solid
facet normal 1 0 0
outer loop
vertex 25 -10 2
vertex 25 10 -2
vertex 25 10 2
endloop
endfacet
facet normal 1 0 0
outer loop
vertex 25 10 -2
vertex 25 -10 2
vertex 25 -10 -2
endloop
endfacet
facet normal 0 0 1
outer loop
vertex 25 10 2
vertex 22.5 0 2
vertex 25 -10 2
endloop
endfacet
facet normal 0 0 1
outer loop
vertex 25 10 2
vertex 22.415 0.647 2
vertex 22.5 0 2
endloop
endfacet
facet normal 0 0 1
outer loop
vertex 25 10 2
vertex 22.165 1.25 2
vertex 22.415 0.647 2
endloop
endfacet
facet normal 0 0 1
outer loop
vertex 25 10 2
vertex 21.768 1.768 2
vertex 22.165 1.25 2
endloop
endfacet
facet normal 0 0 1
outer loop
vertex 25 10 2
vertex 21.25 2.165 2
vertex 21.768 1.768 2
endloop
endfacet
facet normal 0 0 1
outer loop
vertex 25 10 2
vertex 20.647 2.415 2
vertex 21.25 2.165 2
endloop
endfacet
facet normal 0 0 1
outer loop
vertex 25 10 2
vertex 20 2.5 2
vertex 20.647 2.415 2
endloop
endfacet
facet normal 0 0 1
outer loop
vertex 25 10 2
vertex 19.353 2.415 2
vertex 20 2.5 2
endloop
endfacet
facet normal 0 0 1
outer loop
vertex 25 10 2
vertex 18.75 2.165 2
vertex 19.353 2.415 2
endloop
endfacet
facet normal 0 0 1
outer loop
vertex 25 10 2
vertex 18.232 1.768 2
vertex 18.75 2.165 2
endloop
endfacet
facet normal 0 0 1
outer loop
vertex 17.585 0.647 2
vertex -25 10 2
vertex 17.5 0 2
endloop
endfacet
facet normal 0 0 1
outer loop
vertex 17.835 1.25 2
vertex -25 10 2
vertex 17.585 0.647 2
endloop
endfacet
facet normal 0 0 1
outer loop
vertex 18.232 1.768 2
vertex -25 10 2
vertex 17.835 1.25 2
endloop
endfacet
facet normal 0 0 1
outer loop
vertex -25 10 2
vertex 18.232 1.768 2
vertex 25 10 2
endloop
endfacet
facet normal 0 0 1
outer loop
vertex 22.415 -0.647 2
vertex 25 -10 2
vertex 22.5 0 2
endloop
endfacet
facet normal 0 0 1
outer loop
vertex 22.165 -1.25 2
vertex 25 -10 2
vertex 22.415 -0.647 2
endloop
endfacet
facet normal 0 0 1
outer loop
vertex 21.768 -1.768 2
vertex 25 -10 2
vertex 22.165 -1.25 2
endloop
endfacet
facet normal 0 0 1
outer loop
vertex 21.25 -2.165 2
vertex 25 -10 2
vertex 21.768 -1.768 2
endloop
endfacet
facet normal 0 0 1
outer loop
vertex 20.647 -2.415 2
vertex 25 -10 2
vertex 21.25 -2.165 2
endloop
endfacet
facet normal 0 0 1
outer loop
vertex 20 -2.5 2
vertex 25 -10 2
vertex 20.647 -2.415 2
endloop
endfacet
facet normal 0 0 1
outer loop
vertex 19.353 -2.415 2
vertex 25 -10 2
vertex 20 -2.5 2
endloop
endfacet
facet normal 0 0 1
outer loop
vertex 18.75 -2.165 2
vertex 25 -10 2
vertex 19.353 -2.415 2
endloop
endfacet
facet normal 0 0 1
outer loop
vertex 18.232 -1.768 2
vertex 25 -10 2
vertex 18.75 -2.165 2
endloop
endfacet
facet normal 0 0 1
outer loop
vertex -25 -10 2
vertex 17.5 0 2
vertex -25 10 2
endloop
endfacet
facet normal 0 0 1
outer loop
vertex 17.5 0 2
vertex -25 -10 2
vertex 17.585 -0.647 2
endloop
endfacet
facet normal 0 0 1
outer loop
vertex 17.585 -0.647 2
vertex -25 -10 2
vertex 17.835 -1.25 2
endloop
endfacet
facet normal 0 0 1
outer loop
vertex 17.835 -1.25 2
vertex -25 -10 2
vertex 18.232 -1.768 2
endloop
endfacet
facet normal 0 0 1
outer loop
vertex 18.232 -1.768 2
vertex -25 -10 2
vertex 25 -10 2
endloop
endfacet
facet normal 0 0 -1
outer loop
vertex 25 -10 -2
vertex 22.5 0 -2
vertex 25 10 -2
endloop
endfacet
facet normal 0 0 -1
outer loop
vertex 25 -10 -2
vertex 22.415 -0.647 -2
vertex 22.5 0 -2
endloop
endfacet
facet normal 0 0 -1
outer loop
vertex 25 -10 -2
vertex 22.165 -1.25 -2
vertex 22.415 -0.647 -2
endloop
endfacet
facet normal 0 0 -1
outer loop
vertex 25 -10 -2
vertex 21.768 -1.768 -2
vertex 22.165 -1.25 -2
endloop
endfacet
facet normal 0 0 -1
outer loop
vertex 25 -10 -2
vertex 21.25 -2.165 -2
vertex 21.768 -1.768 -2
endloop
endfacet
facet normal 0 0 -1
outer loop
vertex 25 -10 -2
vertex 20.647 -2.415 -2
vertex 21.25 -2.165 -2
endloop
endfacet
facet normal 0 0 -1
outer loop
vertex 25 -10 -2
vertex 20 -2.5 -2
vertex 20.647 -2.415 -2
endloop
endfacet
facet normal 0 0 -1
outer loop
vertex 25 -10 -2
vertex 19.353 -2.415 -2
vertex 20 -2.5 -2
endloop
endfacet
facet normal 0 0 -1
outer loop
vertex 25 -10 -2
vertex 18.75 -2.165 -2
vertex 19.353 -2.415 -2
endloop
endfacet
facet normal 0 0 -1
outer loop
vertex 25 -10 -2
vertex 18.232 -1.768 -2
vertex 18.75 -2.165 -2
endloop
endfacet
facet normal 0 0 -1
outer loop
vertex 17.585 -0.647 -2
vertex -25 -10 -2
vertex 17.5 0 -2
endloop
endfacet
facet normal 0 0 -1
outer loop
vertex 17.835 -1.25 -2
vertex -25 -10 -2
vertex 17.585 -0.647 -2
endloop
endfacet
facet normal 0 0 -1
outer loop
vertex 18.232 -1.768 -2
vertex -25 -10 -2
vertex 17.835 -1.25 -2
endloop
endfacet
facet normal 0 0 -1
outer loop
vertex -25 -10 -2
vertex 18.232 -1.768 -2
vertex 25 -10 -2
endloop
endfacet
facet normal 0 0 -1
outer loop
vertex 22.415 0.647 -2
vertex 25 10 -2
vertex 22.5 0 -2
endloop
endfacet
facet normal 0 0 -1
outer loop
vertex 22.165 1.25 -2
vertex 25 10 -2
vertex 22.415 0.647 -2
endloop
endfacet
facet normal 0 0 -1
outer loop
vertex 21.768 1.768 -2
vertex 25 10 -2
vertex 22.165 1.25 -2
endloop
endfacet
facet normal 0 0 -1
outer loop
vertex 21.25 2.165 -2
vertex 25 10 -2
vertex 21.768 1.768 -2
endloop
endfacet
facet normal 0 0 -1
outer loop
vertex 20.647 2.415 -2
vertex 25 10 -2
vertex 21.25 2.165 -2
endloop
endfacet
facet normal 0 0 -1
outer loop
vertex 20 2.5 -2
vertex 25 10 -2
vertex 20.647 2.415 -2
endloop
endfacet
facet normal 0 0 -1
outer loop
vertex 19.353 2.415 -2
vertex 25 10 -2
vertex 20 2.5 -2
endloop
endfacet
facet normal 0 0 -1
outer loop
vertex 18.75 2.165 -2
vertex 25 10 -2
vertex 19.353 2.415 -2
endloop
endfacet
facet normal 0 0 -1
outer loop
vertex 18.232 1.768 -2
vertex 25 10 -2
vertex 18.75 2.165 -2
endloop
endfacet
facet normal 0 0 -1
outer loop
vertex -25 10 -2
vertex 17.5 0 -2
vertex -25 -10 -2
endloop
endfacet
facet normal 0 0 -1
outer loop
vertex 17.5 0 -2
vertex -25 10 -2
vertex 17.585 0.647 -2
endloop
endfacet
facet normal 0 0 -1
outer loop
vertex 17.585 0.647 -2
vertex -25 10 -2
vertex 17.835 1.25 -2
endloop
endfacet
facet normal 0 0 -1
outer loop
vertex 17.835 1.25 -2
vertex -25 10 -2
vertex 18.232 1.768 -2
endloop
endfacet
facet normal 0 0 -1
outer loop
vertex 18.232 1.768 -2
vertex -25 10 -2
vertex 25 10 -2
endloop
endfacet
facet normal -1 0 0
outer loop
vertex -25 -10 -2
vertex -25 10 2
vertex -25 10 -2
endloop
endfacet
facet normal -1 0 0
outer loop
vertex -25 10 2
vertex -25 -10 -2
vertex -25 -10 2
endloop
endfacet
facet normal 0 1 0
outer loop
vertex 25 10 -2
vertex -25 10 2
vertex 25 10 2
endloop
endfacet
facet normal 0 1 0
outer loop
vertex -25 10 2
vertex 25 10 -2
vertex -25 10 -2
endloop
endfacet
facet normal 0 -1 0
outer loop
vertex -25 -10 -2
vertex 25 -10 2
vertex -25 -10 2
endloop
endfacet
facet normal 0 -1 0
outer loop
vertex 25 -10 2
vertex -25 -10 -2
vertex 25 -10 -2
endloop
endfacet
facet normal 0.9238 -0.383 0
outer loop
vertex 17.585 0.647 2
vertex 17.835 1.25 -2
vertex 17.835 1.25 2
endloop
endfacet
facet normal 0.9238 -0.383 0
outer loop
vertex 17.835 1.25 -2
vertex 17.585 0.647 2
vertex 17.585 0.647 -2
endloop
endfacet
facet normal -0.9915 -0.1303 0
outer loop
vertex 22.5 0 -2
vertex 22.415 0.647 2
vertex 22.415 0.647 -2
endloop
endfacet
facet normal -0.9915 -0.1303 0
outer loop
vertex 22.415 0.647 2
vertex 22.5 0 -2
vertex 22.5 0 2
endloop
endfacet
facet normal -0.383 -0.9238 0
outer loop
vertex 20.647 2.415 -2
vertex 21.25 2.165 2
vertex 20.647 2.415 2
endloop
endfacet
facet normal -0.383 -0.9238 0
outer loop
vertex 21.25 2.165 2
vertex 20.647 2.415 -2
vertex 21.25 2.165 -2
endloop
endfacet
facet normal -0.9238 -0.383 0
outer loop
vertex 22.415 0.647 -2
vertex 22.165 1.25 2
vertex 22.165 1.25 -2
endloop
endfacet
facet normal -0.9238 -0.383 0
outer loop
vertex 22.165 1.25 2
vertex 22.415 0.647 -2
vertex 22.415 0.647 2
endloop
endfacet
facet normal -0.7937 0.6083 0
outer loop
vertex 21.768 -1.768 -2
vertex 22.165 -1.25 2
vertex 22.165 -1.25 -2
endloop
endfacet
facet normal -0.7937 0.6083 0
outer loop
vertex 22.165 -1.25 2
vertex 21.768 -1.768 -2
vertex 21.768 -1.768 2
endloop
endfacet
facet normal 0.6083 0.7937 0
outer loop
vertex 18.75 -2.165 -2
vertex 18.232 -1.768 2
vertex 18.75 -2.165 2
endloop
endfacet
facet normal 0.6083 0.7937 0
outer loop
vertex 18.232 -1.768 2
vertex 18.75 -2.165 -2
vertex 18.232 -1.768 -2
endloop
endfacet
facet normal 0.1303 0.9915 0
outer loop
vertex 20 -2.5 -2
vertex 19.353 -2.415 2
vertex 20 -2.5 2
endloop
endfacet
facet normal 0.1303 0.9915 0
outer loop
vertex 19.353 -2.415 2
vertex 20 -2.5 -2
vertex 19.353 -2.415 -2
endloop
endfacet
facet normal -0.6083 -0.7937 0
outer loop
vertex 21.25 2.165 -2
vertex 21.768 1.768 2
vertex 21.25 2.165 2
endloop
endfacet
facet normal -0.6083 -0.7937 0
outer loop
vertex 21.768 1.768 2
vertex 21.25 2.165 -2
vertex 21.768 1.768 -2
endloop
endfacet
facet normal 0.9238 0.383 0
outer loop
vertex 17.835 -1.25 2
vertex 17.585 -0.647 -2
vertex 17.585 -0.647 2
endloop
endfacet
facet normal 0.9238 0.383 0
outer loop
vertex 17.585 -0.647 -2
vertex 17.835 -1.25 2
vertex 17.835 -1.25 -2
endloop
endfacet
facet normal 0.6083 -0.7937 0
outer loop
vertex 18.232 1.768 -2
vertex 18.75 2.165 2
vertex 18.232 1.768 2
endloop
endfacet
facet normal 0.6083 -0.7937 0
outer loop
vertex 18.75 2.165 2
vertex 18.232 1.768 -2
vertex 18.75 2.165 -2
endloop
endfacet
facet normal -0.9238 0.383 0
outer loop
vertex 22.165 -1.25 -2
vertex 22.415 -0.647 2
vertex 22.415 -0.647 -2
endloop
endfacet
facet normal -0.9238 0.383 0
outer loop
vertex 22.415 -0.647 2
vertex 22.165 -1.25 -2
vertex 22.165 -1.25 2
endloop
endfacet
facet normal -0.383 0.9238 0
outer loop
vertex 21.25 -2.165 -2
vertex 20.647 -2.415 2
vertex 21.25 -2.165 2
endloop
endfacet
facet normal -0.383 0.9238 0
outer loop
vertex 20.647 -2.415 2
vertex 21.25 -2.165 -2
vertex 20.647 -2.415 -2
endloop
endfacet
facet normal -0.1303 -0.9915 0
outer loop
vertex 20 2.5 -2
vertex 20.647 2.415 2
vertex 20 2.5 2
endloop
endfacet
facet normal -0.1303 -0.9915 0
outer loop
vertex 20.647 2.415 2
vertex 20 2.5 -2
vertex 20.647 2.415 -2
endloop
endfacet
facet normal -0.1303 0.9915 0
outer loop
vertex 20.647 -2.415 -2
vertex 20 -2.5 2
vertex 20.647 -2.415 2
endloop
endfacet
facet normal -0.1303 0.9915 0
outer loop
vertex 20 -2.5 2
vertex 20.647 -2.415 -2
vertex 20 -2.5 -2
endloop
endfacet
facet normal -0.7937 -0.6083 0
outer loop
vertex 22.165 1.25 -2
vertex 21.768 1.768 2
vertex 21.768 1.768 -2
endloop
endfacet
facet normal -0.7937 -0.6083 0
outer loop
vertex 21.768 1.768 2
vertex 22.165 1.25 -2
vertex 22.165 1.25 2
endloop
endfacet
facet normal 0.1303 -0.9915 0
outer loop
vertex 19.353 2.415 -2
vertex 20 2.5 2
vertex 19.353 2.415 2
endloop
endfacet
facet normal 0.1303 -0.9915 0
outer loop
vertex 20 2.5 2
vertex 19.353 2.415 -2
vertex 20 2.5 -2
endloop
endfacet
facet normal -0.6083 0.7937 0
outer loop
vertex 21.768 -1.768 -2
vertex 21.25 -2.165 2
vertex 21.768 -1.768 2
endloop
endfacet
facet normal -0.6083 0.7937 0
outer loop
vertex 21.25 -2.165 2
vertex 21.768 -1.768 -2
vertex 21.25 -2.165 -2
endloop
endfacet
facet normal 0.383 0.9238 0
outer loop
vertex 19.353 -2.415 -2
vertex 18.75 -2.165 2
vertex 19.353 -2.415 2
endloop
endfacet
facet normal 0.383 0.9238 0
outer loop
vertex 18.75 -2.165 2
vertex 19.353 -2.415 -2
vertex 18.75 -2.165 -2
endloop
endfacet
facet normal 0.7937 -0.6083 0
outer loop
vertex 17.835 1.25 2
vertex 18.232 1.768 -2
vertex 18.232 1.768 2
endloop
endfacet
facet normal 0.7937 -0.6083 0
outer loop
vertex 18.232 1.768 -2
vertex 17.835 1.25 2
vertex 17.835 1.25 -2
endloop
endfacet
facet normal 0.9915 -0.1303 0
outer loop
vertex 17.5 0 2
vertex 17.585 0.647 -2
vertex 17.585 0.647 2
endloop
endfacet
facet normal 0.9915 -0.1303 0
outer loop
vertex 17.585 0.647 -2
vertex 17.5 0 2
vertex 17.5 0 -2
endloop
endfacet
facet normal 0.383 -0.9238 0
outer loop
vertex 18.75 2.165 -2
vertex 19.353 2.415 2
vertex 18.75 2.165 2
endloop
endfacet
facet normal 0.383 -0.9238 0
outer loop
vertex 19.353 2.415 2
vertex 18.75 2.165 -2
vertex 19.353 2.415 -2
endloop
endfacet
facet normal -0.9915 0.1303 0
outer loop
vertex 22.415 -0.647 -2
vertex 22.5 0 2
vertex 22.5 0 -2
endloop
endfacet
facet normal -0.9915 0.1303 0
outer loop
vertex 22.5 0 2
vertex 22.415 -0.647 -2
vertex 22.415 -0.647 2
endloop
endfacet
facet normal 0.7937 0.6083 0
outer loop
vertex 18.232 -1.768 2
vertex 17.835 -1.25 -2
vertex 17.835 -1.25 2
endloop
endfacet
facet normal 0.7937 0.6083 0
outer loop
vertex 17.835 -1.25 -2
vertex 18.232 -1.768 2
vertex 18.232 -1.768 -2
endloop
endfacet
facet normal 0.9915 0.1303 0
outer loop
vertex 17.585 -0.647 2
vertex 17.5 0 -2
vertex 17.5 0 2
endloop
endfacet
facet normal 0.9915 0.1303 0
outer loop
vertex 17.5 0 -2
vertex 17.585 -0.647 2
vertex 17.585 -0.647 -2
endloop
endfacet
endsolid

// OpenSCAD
// Global settings for curves
$fn = 24;

// Key holder main body dimensions
tag_length = 50; // Overall length of the key holder
tag_width = 20;  // Overall width of the key holder
tag_thickness = 4; // Overall thickness (depth) of the key holder, ensures > 2mm wall

// Keyring hole dimensions
hole_diameter = 5; // Diameter of the hole for the keyring
hole_radius = hole_diameter / 2;
hole_offset_from_end = 5; // Distance from the end of the tag to the center of the hole

// Main key holder object centered at (0,0,0)
difference() {
    // Main rectangular body of the key holder
    cube([tag_length, tag_width, tag_thickness], center = true);

    // Keyring hole cutout
    // Positioned near one end (positive X side) and centered on Y and Z axis
    translate([
        (tag_length / 2) - hole_offset_from_end, // X position: from the end towards the center
        0,                                        // Y position: centered
        0                                         // Z position: centered
    ])
    cylinder(r = hole_radius, h = tag_thickness + 0.1, center = true); // Z-height slightly extended for clean cut
}
